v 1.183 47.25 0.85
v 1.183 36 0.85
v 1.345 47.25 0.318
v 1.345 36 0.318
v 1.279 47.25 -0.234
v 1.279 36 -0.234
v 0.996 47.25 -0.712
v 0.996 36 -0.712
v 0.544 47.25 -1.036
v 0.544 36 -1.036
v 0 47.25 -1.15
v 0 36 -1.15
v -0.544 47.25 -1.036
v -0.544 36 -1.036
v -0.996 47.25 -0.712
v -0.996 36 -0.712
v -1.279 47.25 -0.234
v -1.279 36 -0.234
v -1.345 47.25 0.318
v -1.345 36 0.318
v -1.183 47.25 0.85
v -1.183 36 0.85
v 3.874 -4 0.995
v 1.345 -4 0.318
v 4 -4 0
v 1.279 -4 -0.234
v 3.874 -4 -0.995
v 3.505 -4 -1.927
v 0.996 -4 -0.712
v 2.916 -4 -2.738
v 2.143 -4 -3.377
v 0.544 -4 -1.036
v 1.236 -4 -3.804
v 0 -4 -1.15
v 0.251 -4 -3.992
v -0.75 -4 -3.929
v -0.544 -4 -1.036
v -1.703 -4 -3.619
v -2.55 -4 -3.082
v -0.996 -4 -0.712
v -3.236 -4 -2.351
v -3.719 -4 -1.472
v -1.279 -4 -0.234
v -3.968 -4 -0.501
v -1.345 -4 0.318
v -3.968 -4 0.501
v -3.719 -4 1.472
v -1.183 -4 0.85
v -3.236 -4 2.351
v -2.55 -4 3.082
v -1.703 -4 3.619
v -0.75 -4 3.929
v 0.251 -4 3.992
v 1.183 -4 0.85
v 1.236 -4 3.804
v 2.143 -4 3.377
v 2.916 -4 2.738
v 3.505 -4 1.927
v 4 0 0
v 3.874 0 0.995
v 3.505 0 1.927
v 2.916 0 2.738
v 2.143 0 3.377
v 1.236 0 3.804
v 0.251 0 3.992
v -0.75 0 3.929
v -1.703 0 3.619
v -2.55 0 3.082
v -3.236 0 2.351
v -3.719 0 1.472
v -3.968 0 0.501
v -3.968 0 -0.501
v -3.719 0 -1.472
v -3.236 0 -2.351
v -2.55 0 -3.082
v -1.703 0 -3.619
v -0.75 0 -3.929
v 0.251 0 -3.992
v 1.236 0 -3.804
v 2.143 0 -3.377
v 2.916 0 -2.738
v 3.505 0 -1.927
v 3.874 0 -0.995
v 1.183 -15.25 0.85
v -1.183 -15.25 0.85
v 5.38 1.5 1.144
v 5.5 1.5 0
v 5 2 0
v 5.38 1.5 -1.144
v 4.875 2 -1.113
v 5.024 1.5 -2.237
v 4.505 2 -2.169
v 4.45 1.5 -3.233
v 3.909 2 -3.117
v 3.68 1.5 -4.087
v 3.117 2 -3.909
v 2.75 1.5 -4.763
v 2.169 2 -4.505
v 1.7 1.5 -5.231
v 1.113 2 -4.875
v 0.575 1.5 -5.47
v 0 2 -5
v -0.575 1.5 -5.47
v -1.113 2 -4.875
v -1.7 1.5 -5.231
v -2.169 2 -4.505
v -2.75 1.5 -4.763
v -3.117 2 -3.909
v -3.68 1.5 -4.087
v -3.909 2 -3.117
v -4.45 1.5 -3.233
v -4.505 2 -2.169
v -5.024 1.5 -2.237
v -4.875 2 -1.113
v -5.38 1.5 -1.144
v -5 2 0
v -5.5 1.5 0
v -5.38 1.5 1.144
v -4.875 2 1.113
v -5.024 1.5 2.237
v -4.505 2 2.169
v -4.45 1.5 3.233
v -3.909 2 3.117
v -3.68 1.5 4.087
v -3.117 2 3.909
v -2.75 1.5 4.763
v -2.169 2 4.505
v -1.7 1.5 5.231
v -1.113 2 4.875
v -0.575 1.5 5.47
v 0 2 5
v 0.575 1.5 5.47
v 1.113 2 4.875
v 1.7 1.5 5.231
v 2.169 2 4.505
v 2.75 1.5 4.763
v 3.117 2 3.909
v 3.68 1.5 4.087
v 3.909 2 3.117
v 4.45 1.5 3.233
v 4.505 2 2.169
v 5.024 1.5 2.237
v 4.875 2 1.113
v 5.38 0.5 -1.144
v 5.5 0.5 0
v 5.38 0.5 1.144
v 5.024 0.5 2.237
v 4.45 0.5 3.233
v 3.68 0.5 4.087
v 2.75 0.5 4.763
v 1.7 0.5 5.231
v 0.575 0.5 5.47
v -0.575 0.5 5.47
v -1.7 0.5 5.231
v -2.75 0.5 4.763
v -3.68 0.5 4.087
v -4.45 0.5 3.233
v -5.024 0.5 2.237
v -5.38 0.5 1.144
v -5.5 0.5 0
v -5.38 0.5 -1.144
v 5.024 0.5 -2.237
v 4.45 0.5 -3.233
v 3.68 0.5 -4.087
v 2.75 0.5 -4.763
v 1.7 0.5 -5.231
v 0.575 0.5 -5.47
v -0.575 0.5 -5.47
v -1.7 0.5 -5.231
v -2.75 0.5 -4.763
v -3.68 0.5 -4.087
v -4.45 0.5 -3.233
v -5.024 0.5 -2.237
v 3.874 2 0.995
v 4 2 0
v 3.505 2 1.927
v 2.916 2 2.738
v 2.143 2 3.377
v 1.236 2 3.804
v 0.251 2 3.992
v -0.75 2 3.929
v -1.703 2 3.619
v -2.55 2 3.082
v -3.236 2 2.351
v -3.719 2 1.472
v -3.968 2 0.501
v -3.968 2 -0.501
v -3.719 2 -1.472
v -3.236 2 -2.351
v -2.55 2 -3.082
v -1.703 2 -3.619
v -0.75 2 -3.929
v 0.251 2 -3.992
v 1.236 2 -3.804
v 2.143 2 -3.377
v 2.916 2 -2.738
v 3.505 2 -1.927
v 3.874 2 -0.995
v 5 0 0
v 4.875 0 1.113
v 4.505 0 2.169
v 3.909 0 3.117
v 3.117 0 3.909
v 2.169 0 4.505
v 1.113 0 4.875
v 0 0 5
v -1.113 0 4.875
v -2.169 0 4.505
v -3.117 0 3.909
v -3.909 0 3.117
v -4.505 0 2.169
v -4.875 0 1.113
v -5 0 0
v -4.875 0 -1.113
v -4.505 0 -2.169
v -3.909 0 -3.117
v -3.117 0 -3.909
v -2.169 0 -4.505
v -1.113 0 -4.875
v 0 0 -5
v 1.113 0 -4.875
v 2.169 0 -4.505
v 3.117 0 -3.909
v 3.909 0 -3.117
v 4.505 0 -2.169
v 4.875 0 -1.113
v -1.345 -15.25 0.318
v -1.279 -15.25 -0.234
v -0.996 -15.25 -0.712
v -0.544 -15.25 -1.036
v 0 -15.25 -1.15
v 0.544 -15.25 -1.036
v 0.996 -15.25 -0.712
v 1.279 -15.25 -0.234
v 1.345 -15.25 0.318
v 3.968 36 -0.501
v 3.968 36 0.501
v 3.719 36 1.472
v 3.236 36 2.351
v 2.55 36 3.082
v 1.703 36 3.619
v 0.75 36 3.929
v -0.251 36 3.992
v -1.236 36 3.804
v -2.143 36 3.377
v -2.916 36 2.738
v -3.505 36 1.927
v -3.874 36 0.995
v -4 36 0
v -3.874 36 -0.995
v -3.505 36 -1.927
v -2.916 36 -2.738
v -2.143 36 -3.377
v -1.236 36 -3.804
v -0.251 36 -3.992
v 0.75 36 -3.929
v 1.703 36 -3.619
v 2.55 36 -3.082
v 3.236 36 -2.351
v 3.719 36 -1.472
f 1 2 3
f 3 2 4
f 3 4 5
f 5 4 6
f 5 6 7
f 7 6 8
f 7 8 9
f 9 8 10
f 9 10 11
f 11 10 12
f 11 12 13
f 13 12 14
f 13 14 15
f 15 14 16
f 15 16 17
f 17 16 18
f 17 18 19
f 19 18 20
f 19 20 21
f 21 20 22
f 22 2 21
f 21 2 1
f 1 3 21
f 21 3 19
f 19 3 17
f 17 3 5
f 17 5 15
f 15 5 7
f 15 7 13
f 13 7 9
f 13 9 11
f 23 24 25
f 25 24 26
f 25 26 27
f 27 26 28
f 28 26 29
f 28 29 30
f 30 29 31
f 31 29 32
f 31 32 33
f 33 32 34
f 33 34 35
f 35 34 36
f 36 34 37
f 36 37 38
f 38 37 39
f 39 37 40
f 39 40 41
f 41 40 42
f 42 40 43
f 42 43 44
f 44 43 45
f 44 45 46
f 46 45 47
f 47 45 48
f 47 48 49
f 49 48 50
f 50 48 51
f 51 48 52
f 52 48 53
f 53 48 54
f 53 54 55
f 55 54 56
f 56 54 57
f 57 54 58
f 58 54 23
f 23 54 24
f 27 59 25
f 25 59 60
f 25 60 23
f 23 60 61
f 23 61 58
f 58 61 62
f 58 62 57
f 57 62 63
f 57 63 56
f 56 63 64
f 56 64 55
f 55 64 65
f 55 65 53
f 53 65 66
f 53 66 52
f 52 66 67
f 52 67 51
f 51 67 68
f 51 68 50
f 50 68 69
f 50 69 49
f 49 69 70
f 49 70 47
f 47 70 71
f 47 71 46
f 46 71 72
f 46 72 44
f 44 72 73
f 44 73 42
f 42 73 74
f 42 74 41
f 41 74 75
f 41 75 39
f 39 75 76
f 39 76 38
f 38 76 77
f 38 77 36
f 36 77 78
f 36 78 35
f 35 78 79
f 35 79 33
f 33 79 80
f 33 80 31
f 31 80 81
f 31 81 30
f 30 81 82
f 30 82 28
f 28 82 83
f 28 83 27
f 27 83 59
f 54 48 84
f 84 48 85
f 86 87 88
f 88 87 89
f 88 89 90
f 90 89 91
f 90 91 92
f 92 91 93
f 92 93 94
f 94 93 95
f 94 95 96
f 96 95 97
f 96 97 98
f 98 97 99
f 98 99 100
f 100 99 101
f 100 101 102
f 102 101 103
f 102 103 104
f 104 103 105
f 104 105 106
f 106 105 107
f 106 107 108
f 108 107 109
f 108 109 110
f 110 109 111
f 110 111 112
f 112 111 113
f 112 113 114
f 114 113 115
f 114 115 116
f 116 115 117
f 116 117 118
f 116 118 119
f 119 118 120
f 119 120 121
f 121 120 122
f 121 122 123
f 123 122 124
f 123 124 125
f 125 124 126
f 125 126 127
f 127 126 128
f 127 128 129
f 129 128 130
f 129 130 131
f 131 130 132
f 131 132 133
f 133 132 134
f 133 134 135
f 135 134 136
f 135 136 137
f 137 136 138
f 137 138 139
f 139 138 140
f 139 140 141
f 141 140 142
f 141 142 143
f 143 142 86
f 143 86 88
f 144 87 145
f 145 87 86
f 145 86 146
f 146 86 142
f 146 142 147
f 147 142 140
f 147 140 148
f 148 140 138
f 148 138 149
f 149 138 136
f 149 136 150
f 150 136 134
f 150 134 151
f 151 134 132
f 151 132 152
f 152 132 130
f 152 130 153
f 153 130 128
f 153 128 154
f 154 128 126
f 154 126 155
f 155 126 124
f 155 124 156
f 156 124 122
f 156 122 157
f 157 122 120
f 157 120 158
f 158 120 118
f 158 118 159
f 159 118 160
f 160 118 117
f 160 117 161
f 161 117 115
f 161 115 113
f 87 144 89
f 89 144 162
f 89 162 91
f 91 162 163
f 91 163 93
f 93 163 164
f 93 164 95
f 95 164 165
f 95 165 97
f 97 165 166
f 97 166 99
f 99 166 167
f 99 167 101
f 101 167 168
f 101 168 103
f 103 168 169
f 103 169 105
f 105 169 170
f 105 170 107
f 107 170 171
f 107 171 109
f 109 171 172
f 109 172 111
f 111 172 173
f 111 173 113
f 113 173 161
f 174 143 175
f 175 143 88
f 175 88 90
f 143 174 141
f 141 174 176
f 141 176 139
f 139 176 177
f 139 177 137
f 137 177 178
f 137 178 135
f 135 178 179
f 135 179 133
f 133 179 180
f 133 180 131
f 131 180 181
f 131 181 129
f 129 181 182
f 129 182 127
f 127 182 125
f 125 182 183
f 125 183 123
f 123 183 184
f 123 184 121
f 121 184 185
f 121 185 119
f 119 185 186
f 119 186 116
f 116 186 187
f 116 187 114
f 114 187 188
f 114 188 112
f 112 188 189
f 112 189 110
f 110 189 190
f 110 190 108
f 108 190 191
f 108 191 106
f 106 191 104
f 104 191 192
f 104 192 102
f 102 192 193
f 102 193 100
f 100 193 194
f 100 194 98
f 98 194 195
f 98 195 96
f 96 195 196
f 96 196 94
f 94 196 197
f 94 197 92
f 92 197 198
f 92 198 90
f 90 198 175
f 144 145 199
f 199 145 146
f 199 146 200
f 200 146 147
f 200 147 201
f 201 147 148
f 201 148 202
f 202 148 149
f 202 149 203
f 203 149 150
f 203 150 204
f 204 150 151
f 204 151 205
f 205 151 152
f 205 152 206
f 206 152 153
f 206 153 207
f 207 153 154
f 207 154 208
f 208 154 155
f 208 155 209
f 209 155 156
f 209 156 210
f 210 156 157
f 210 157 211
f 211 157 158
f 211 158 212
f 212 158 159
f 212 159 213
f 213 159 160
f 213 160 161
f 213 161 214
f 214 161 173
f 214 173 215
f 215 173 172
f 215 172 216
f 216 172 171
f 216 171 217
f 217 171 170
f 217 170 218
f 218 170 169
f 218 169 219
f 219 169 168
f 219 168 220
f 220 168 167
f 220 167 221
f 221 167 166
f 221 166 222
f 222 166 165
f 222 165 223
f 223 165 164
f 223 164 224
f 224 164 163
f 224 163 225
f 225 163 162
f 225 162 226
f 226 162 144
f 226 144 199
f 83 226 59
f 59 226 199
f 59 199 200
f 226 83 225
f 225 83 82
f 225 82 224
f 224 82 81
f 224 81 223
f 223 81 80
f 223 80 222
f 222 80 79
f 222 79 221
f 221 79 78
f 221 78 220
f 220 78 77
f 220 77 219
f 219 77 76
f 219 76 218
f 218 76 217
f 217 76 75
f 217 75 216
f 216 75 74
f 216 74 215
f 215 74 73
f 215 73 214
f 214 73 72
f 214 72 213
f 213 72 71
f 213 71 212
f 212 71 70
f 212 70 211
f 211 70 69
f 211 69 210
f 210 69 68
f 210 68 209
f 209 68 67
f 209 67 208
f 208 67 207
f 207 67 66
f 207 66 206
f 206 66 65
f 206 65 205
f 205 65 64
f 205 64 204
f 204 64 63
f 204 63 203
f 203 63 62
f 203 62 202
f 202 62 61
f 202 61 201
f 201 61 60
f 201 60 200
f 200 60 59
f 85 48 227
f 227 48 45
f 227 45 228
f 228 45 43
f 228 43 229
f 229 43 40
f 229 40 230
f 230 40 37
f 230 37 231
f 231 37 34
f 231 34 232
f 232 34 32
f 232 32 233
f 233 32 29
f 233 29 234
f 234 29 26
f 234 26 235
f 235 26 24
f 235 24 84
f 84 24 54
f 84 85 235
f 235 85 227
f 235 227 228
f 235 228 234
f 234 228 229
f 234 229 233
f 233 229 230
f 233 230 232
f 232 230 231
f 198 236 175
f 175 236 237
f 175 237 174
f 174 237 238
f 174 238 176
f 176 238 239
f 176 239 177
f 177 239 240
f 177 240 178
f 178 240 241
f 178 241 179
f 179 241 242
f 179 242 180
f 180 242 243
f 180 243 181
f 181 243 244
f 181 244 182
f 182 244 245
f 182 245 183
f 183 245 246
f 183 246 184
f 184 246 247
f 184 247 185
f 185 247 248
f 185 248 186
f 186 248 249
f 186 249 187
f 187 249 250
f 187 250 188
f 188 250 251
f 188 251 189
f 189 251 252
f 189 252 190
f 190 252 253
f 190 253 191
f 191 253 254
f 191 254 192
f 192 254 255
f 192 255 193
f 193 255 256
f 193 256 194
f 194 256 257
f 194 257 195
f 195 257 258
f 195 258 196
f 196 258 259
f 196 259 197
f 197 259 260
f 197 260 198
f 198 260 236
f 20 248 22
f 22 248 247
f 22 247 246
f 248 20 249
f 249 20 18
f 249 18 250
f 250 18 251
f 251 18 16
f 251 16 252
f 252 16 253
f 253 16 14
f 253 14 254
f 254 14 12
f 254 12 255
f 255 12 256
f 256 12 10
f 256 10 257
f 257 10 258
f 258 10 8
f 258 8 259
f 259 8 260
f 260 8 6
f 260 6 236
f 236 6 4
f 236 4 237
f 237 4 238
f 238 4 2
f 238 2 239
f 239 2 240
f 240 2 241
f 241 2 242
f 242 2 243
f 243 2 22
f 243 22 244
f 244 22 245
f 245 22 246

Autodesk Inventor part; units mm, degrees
ref_plane "YZ Plane" through (0, 0, 0) normal (1, 0, 0) x (0, 1, 0)
ref_plane "XZ Plane" through (0, 0, 0) normal (0, 1, 0) x (-1, 0, 0)
sketch "Sketch1" plane through (0, 0, 0) normal (0, 1, 0) x (-1, 0, 0)
  circle A0 centre (0, 0) radius 4
  dimension "d0" = 8
extrude "Extrusion1" add sketch "Sketch1" along normal blind 36
sketch "Sketch3" plane through (0, 0, 0) normal (0, -1, 0) x (1, 0, 0)
  line L0 (-1.1832, 0.85) -> (1.1832, 0.85)
  arc A0 (-1.1832, 0.85) -> (1.1832, 0.85) centre (0, 0.2) ccw
  point P0 (0, 0)
  point P1 (0, 0)
  point P2 (0, 0.85)
  dimension "d16" = 1.35
  dimension "d17" = 0.2
  dimension "d39" = 2
extrude "Extrusion3" add sketch "Sketch3" along normal blind 15.25
sketch "Sketch5" plane through (0, 0, 0) normal (0, -1, 0) x (1, 0, 0)
  circle A0 centre (0, 0) radius 5.5
  dimension "d29" = 11
extrude "Extrusion5" add sketch "Sketch5" against normal blind 2
chamfer "Chamfer3" distance 0.5 angle 45 2 edges at (-5.5, 0, 0) (-5.5, 2, 0)
sketch "Sketch6" plane through (0, 0, 0) normal (0, -1, 0) x (1, 0, 0)
  circle A0 centre (0, 0) radius 5 projected
  line L0 (-7.7, 0) -> (7.7, 0) projected
  line L1 (0, -7.7) -> (0, 7.7) projected
  circle A1 centre (0, 0) radius 4
  dimension "d35" = 8
extrude "Extrusion6" add sketch "Sketch6" along normal blind 4 contours A1 L1 L0 | L0 L1 A1 | L1 L0 A1 | A1 L0 L1
ref_plane "Work Plane1" through (0, 16, 0) normal (0, 1, 0) x (1, 0, 0)
mirror "Mirror1" about plane through (0, 16, 0) normal (0, 1, 0) of "Extrusion3"
properties part number "axle-skibidi"
